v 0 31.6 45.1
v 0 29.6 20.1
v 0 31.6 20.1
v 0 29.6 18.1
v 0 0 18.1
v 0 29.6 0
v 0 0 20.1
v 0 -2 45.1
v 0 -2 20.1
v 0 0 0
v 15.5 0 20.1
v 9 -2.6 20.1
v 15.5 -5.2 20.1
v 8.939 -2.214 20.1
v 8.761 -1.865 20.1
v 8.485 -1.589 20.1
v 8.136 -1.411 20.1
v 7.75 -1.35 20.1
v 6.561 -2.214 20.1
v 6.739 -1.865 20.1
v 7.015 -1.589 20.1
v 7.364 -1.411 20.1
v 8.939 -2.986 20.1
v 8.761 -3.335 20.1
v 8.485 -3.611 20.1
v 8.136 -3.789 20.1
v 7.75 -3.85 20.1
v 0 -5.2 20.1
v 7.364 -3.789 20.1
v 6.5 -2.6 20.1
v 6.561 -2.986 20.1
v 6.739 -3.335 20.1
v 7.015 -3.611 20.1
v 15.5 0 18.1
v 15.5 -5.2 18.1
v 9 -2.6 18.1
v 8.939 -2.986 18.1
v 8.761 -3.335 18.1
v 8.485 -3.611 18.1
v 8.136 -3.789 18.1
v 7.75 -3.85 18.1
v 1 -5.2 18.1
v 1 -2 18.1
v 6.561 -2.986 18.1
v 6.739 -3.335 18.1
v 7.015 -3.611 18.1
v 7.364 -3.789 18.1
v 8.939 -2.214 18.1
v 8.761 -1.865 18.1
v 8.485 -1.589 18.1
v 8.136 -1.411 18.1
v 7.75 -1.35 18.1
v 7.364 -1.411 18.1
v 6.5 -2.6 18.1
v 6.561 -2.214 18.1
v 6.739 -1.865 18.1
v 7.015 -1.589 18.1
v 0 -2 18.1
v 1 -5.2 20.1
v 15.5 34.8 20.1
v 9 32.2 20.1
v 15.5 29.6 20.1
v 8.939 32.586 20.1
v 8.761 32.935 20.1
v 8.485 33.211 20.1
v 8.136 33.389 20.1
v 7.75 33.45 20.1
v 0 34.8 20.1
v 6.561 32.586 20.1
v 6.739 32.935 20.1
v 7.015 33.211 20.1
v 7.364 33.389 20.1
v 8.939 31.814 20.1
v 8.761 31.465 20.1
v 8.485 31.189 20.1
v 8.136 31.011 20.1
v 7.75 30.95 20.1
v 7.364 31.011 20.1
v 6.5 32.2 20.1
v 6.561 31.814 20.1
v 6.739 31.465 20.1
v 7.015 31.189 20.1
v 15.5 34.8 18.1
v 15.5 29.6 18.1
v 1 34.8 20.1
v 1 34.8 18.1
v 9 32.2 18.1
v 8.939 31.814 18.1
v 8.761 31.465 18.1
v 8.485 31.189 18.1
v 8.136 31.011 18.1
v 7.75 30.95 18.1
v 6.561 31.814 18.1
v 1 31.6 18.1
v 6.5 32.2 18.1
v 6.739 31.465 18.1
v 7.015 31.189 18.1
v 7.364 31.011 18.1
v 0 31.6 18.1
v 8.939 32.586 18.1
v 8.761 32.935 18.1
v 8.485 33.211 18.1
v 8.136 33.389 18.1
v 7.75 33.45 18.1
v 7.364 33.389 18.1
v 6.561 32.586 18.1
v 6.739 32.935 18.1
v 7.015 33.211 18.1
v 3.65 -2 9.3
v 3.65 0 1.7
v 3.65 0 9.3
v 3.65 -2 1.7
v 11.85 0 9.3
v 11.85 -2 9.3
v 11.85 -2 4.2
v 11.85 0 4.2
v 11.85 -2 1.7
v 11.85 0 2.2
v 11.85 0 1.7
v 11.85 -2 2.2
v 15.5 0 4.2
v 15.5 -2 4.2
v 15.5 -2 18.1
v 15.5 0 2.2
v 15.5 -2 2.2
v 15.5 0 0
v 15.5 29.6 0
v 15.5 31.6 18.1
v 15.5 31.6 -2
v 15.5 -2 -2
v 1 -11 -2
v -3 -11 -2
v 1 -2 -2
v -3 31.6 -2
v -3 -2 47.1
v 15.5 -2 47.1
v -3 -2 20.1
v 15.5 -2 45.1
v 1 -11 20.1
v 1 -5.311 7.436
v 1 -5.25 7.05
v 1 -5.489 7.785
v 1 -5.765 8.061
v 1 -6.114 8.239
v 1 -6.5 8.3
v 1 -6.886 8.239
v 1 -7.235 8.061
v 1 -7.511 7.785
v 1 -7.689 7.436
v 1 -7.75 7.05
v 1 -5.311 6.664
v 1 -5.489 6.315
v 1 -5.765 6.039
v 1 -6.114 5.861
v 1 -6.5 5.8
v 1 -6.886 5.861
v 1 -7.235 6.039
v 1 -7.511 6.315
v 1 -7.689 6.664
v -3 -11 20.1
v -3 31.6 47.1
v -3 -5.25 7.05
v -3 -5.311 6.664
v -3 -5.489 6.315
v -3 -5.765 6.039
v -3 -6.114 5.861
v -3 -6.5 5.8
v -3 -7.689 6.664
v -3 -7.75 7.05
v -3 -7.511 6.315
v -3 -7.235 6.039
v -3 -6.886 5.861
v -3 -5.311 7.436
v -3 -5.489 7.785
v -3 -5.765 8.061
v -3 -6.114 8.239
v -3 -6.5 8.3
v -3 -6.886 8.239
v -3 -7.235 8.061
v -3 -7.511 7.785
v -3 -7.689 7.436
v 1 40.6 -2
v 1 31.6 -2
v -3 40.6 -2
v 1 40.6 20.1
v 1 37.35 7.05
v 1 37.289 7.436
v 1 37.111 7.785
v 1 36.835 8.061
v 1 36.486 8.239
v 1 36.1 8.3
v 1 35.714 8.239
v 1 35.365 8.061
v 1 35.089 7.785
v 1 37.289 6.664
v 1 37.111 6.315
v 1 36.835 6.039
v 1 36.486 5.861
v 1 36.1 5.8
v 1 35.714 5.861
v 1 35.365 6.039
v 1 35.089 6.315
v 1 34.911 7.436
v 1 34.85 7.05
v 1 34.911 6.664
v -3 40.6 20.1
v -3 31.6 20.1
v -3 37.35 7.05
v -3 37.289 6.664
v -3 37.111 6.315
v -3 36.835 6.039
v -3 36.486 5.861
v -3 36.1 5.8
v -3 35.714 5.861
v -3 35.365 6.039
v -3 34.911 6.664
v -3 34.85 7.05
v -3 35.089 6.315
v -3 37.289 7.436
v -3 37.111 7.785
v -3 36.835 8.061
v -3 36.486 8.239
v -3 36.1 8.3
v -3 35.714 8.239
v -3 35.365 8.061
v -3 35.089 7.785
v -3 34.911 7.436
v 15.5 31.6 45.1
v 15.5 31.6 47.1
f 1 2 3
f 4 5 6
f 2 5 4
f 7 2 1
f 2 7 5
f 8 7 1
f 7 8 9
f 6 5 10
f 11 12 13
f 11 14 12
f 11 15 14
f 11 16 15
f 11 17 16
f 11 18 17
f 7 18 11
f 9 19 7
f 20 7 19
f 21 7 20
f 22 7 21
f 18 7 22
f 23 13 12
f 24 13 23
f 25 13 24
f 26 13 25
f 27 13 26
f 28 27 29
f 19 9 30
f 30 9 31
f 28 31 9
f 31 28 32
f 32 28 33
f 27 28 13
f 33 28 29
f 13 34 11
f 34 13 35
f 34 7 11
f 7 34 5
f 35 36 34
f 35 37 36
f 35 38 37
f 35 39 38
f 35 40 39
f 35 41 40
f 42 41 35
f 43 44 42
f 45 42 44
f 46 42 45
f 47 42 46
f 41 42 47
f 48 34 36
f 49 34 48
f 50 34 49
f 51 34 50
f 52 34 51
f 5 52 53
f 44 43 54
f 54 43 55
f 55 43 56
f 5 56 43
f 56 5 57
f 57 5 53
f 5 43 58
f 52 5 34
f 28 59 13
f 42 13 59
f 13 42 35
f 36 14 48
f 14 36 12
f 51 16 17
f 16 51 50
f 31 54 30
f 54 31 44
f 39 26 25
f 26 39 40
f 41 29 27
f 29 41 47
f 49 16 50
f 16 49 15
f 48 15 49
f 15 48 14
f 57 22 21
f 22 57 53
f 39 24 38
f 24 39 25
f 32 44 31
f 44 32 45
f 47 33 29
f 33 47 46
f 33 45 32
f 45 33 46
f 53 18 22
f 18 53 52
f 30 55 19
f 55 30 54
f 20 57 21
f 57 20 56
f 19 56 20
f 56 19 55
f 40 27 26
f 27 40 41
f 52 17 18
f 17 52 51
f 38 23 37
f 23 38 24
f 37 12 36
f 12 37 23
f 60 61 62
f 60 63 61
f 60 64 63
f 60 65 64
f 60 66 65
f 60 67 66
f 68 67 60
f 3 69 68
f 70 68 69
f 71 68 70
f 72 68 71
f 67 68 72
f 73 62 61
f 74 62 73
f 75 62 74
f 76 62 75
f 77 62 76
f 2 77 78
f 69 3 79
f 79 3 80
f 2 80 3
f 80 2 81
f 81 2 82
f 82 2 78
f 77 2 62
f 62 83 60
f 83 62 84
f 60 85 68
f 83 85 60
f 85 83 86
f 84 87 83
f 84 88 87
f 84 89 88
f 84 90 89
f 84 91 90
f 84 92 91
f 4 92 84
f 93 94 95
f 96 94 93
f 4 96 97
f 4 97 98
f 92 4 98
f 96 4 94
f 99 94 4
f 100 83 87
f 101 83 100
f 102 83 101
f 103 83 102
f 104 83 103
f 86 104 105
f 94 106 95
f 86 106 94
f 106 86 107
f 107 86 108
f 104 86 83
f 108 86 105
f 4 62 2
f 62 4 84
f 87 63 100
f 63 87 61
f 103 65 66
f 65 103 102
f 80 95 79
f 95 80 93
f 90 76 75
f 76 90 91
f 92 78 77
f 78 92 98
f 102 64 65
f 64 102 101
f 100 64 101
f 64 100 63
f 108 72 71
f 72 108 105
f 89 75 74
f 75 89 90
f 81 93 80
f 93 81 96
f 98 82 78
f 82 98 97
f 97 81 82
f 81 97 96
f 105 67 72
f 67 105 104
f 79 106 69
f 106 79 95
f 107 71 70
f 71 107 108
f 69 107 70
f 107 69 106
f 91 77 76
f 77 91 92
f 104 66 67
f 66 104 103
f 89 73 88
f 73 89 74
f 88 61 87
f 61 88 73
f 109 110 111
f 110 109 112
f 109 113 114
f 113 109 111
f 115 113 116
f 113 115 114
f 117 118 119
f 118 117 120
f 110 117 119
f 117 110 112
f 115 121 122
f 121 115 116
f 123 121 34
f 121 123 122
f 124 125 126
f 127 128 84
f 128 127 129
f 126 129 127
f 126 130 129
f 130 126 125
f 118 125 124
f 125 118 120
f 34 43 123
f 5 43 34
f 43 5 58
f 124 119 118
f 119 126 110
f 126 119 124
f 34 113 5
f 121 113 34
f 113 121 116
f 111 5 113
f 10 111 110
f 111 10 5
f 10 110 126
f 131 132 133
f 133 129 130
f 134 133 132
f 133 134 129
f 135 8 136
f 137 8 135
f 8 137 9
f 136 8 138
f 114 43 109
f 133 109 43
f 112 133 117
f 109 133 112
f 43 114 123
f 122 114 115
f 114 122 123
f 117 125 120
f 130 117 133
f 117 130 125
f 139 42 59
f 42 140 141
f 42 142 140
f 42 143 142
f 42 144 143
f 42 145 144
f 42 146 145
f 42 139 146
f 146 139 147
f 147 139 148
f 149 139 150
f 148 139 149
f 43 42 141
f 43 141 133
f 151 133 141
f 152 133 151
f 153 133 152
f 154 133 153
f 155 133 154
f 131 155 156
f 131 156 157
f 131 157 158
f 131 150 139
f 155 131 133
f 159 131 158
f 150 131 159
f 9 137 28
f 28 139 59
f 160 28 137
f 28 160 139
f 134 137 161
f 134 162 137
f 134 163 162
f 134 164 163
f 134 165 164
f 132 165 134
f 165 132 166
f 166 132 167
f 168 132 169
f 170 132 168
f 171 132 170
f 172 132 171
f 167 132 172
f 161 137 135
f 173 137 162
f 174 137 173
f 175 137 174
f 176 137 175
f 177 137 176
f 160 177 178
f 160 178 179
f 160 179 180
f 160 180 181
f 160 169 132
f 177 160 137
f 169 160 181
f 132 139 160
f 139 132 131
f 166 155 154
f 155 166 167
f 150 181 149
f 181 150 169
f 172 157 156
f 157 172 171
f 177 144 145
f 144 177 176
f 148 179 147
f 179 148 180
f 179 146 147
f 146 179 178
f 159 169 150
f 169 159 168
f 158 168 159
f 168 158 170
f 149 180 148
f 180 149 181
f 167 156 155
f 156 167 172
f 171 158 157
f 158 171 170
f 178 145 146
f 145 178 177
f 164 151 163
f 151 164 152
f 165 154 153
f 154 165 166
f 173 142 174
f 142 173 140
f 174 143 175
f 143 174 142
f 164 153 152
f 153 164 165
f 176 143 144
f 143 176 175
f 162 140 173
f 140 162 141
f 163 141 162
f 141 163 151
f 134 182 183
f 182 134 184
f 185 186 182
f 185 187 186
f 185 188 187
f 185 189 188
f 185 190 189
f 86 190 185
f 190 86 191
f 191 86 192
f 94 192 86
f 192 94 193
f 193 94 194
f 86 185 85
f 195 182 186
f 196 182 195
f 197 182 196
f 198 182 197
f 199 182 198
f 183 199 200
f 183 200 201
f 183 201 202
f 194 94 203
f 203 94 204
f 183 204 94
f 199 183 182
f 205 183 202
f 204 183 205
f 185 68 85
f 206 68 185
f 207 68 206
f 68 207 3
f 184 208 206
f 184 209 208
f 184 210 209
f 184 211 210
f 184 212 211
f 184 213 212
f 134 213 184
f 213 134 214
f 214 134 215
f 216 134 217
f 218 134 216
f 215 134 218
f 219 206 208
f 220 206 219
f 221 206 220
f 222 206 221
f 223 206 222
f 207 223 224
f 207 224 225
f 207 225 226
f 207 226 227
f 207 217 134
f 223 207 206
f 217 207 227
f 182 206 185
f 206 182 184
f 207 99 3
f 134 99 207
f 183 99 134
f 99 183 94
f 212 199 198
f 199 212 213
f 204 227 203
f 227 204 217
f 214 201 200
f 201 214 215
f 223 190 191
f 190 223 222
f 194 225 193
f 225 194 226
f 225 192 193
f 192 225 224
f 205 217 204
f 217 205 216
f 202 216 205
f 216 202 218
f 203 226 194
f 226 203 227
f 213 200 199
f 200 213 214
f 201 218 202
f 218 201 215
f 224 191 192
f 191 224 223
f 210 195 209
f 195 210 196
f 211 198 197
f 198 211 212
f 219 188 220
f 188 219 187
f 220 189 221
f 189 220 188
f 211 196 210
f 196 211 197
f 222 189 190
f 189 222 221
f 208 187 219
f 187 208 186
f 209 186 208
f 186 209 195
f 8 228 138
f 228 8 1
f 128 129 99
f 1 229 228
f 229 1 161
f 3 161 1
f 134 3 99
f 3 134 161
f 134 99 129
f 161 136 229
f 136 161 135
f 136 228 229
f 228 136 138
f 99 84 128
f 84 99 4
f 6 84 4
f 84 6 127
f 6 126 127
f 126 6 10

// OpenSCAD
druckerUngenauigkeit=.5;
servoBreite=29.1 + druckerUngenauigkeit;
servoTiefe=14.0 + 1+ druckerUngenauigkeit;
servoHoeheBisAufnahme=18.1;
servoAufnahmeBreite=5.2;
lochDurchmesser=2.5;
aufnahmeDicke=2.0;
seitenwandDicke=2.0;
grundPlattenHoehe=2.0;
AnschlussUeberBodenHoehe=4.2 ;
AnschlussHoehe=4.1 +2+ druckerUngenauigkeit;
AnschlussBreite=6.7 +1+ druckerUngenauigkeit;
RueckwandDicke=3;
RueckwandUeberHoehe=25;

servoBHalterungBefestigungBreite=9;
servoBHalterungBefestigungDicke=4;

$fn=20;

union(){
    translate([0,0,servoHoeheBisAufnahme]) {
        color("red"){
            translate([0,-servoAufnahmeBreite,0])
                servo_aufnahme();
            translate([0,servoBreite,0])
                servo_aufnahme();
        }
    }
    
    { // Seitenwaende
        translate([0,-seitenwandDicke,-grundPlattenHoehe])
            servoSeitenwand();
        translate([0,servoBreite,-grundPlattenHoehe])
            servoSeitenwand(mitAussparung=0);
    }
    
    color("cyan")
        servoGrundplatte();

    color("blue")
        translate([-RueckwandDicke,0,-grundPlattenHoehe]){
//                servoHalterungBefestigung();
        translate([0,-seitenwandDicke,-0])
                servoHalterungBefestigung();
        translate([0,servoBreite+seitenwandDicke+servoBHalterungBefestigungBreite,0])
//            mirror([0,0,0]) 
            servoHalterungBefestigung();
    }
    translate([-RueckwandDicke,-seitenwandDicke,-grundPlattenHoehe]){
        servoRueckwand();        
        servoRueckwandLang();
}
//    color("gray")        servoAussparung();

}


module        servoHalterungBefestigung(){
rotate(a=[180,-90,0]) { 
    difference(){
//    union(){
        cube([servoHoeheBisAufnahme+grundPlattenHoehe+aufnahmeDicke,servoBHalterungBefestigungBreite,  servoBHalterungBefestigungDicke], center = false);
        translate([servoHoeheBisAufnahme/2,servoBHalterungBefestigungBreite/2, servoBHalterungBefestigungDicke])
            color("cyan")
            cylinder(h = (servoBHalterungBefestigungDicke)*3, r = lochDurchmesser/2, center = true);
    }}
}

module    servoAussparung(){
        cube([servoTiefe, servoBreite, servoHoeheBisAufnahme], center = false);
    }

module    servoRueckwand(){
        cube([RueckwandDicke, servoBreite+2*seitenwandDicke, servoHoeheBisAufnahme+grundPlattenHoehe+aufnahmeDicke], center = false);
    }

module    servoRueckwandLang(){
    LangeRueckwandHoehe=RueckwandUeberHoehe+servoHoeheBisAufnahme+grundPlattenHoehe+aufnahmeDicke;
        cube([RueckwandDicke, servoBreite+2*seitenwandDicke, LangeRueckwandHoehe], center = false);

        translate([0,0,LangeRueckwandHoehe]){
        cube([RueckwandDicke+servoTiefe, servoBreite+2*seitenwandDicke, seitenwandDicke], center = false);
            //RueckwandUeberHoehe+servoHoeheBisAufnahme+grundPlattenHoehe+aufnahmeDicke
        }

    }

module    servoSeitenwand(mitAussparung=1){
        difference(){
            cube([servoTiefe, seitenwandDicke, grundPlattenHoehe+servoHoeheBisAufnahme], center = false);

    if (mitAussparung){
            schlitzBreite=1.5;
            // Aussparung Anschluss
            translate([(servoTiefe/2)-(AnschlussBreite/2),-1,AnschlussUeberBodenHoehe-druckerUngenauigkeit])
                cube([AnschlussBreite, seitenwandDicke+2, AnschlussHoehe+2*druckerUngenauigkeit], center = false);
            // Aussparung Kabel Einfädelung
            translate([(servoTiefe/2),-1,AnschlussUeberBodenHoehe])
                cube([(servoTiefe/2), seitenwandDicke+2, schlitzBreite+druckerUngenauigkeit], center = false);
            }   
        }
   }
    
module    servoGrundplatte(){
            translate([0,0,-2])  
      cube([servoTiefe,servoBreite, grundPlattenHoehe], center = false);
    }
    
module servo_aufnahme(){
    difference(){
//    union(){
        cube([servoTiefe,servoAufnahmeBreite,  aufnahmeDicke], center = false);
        translate([servoTiefe/2,servoAufnahmeBreite/2, (aufnahmeDicke/2)-1])
            color("cyan")
            cylinder(h = (aufnahmeDicke+3), r = lochDurchmesser/2, center = true);
    }
}
